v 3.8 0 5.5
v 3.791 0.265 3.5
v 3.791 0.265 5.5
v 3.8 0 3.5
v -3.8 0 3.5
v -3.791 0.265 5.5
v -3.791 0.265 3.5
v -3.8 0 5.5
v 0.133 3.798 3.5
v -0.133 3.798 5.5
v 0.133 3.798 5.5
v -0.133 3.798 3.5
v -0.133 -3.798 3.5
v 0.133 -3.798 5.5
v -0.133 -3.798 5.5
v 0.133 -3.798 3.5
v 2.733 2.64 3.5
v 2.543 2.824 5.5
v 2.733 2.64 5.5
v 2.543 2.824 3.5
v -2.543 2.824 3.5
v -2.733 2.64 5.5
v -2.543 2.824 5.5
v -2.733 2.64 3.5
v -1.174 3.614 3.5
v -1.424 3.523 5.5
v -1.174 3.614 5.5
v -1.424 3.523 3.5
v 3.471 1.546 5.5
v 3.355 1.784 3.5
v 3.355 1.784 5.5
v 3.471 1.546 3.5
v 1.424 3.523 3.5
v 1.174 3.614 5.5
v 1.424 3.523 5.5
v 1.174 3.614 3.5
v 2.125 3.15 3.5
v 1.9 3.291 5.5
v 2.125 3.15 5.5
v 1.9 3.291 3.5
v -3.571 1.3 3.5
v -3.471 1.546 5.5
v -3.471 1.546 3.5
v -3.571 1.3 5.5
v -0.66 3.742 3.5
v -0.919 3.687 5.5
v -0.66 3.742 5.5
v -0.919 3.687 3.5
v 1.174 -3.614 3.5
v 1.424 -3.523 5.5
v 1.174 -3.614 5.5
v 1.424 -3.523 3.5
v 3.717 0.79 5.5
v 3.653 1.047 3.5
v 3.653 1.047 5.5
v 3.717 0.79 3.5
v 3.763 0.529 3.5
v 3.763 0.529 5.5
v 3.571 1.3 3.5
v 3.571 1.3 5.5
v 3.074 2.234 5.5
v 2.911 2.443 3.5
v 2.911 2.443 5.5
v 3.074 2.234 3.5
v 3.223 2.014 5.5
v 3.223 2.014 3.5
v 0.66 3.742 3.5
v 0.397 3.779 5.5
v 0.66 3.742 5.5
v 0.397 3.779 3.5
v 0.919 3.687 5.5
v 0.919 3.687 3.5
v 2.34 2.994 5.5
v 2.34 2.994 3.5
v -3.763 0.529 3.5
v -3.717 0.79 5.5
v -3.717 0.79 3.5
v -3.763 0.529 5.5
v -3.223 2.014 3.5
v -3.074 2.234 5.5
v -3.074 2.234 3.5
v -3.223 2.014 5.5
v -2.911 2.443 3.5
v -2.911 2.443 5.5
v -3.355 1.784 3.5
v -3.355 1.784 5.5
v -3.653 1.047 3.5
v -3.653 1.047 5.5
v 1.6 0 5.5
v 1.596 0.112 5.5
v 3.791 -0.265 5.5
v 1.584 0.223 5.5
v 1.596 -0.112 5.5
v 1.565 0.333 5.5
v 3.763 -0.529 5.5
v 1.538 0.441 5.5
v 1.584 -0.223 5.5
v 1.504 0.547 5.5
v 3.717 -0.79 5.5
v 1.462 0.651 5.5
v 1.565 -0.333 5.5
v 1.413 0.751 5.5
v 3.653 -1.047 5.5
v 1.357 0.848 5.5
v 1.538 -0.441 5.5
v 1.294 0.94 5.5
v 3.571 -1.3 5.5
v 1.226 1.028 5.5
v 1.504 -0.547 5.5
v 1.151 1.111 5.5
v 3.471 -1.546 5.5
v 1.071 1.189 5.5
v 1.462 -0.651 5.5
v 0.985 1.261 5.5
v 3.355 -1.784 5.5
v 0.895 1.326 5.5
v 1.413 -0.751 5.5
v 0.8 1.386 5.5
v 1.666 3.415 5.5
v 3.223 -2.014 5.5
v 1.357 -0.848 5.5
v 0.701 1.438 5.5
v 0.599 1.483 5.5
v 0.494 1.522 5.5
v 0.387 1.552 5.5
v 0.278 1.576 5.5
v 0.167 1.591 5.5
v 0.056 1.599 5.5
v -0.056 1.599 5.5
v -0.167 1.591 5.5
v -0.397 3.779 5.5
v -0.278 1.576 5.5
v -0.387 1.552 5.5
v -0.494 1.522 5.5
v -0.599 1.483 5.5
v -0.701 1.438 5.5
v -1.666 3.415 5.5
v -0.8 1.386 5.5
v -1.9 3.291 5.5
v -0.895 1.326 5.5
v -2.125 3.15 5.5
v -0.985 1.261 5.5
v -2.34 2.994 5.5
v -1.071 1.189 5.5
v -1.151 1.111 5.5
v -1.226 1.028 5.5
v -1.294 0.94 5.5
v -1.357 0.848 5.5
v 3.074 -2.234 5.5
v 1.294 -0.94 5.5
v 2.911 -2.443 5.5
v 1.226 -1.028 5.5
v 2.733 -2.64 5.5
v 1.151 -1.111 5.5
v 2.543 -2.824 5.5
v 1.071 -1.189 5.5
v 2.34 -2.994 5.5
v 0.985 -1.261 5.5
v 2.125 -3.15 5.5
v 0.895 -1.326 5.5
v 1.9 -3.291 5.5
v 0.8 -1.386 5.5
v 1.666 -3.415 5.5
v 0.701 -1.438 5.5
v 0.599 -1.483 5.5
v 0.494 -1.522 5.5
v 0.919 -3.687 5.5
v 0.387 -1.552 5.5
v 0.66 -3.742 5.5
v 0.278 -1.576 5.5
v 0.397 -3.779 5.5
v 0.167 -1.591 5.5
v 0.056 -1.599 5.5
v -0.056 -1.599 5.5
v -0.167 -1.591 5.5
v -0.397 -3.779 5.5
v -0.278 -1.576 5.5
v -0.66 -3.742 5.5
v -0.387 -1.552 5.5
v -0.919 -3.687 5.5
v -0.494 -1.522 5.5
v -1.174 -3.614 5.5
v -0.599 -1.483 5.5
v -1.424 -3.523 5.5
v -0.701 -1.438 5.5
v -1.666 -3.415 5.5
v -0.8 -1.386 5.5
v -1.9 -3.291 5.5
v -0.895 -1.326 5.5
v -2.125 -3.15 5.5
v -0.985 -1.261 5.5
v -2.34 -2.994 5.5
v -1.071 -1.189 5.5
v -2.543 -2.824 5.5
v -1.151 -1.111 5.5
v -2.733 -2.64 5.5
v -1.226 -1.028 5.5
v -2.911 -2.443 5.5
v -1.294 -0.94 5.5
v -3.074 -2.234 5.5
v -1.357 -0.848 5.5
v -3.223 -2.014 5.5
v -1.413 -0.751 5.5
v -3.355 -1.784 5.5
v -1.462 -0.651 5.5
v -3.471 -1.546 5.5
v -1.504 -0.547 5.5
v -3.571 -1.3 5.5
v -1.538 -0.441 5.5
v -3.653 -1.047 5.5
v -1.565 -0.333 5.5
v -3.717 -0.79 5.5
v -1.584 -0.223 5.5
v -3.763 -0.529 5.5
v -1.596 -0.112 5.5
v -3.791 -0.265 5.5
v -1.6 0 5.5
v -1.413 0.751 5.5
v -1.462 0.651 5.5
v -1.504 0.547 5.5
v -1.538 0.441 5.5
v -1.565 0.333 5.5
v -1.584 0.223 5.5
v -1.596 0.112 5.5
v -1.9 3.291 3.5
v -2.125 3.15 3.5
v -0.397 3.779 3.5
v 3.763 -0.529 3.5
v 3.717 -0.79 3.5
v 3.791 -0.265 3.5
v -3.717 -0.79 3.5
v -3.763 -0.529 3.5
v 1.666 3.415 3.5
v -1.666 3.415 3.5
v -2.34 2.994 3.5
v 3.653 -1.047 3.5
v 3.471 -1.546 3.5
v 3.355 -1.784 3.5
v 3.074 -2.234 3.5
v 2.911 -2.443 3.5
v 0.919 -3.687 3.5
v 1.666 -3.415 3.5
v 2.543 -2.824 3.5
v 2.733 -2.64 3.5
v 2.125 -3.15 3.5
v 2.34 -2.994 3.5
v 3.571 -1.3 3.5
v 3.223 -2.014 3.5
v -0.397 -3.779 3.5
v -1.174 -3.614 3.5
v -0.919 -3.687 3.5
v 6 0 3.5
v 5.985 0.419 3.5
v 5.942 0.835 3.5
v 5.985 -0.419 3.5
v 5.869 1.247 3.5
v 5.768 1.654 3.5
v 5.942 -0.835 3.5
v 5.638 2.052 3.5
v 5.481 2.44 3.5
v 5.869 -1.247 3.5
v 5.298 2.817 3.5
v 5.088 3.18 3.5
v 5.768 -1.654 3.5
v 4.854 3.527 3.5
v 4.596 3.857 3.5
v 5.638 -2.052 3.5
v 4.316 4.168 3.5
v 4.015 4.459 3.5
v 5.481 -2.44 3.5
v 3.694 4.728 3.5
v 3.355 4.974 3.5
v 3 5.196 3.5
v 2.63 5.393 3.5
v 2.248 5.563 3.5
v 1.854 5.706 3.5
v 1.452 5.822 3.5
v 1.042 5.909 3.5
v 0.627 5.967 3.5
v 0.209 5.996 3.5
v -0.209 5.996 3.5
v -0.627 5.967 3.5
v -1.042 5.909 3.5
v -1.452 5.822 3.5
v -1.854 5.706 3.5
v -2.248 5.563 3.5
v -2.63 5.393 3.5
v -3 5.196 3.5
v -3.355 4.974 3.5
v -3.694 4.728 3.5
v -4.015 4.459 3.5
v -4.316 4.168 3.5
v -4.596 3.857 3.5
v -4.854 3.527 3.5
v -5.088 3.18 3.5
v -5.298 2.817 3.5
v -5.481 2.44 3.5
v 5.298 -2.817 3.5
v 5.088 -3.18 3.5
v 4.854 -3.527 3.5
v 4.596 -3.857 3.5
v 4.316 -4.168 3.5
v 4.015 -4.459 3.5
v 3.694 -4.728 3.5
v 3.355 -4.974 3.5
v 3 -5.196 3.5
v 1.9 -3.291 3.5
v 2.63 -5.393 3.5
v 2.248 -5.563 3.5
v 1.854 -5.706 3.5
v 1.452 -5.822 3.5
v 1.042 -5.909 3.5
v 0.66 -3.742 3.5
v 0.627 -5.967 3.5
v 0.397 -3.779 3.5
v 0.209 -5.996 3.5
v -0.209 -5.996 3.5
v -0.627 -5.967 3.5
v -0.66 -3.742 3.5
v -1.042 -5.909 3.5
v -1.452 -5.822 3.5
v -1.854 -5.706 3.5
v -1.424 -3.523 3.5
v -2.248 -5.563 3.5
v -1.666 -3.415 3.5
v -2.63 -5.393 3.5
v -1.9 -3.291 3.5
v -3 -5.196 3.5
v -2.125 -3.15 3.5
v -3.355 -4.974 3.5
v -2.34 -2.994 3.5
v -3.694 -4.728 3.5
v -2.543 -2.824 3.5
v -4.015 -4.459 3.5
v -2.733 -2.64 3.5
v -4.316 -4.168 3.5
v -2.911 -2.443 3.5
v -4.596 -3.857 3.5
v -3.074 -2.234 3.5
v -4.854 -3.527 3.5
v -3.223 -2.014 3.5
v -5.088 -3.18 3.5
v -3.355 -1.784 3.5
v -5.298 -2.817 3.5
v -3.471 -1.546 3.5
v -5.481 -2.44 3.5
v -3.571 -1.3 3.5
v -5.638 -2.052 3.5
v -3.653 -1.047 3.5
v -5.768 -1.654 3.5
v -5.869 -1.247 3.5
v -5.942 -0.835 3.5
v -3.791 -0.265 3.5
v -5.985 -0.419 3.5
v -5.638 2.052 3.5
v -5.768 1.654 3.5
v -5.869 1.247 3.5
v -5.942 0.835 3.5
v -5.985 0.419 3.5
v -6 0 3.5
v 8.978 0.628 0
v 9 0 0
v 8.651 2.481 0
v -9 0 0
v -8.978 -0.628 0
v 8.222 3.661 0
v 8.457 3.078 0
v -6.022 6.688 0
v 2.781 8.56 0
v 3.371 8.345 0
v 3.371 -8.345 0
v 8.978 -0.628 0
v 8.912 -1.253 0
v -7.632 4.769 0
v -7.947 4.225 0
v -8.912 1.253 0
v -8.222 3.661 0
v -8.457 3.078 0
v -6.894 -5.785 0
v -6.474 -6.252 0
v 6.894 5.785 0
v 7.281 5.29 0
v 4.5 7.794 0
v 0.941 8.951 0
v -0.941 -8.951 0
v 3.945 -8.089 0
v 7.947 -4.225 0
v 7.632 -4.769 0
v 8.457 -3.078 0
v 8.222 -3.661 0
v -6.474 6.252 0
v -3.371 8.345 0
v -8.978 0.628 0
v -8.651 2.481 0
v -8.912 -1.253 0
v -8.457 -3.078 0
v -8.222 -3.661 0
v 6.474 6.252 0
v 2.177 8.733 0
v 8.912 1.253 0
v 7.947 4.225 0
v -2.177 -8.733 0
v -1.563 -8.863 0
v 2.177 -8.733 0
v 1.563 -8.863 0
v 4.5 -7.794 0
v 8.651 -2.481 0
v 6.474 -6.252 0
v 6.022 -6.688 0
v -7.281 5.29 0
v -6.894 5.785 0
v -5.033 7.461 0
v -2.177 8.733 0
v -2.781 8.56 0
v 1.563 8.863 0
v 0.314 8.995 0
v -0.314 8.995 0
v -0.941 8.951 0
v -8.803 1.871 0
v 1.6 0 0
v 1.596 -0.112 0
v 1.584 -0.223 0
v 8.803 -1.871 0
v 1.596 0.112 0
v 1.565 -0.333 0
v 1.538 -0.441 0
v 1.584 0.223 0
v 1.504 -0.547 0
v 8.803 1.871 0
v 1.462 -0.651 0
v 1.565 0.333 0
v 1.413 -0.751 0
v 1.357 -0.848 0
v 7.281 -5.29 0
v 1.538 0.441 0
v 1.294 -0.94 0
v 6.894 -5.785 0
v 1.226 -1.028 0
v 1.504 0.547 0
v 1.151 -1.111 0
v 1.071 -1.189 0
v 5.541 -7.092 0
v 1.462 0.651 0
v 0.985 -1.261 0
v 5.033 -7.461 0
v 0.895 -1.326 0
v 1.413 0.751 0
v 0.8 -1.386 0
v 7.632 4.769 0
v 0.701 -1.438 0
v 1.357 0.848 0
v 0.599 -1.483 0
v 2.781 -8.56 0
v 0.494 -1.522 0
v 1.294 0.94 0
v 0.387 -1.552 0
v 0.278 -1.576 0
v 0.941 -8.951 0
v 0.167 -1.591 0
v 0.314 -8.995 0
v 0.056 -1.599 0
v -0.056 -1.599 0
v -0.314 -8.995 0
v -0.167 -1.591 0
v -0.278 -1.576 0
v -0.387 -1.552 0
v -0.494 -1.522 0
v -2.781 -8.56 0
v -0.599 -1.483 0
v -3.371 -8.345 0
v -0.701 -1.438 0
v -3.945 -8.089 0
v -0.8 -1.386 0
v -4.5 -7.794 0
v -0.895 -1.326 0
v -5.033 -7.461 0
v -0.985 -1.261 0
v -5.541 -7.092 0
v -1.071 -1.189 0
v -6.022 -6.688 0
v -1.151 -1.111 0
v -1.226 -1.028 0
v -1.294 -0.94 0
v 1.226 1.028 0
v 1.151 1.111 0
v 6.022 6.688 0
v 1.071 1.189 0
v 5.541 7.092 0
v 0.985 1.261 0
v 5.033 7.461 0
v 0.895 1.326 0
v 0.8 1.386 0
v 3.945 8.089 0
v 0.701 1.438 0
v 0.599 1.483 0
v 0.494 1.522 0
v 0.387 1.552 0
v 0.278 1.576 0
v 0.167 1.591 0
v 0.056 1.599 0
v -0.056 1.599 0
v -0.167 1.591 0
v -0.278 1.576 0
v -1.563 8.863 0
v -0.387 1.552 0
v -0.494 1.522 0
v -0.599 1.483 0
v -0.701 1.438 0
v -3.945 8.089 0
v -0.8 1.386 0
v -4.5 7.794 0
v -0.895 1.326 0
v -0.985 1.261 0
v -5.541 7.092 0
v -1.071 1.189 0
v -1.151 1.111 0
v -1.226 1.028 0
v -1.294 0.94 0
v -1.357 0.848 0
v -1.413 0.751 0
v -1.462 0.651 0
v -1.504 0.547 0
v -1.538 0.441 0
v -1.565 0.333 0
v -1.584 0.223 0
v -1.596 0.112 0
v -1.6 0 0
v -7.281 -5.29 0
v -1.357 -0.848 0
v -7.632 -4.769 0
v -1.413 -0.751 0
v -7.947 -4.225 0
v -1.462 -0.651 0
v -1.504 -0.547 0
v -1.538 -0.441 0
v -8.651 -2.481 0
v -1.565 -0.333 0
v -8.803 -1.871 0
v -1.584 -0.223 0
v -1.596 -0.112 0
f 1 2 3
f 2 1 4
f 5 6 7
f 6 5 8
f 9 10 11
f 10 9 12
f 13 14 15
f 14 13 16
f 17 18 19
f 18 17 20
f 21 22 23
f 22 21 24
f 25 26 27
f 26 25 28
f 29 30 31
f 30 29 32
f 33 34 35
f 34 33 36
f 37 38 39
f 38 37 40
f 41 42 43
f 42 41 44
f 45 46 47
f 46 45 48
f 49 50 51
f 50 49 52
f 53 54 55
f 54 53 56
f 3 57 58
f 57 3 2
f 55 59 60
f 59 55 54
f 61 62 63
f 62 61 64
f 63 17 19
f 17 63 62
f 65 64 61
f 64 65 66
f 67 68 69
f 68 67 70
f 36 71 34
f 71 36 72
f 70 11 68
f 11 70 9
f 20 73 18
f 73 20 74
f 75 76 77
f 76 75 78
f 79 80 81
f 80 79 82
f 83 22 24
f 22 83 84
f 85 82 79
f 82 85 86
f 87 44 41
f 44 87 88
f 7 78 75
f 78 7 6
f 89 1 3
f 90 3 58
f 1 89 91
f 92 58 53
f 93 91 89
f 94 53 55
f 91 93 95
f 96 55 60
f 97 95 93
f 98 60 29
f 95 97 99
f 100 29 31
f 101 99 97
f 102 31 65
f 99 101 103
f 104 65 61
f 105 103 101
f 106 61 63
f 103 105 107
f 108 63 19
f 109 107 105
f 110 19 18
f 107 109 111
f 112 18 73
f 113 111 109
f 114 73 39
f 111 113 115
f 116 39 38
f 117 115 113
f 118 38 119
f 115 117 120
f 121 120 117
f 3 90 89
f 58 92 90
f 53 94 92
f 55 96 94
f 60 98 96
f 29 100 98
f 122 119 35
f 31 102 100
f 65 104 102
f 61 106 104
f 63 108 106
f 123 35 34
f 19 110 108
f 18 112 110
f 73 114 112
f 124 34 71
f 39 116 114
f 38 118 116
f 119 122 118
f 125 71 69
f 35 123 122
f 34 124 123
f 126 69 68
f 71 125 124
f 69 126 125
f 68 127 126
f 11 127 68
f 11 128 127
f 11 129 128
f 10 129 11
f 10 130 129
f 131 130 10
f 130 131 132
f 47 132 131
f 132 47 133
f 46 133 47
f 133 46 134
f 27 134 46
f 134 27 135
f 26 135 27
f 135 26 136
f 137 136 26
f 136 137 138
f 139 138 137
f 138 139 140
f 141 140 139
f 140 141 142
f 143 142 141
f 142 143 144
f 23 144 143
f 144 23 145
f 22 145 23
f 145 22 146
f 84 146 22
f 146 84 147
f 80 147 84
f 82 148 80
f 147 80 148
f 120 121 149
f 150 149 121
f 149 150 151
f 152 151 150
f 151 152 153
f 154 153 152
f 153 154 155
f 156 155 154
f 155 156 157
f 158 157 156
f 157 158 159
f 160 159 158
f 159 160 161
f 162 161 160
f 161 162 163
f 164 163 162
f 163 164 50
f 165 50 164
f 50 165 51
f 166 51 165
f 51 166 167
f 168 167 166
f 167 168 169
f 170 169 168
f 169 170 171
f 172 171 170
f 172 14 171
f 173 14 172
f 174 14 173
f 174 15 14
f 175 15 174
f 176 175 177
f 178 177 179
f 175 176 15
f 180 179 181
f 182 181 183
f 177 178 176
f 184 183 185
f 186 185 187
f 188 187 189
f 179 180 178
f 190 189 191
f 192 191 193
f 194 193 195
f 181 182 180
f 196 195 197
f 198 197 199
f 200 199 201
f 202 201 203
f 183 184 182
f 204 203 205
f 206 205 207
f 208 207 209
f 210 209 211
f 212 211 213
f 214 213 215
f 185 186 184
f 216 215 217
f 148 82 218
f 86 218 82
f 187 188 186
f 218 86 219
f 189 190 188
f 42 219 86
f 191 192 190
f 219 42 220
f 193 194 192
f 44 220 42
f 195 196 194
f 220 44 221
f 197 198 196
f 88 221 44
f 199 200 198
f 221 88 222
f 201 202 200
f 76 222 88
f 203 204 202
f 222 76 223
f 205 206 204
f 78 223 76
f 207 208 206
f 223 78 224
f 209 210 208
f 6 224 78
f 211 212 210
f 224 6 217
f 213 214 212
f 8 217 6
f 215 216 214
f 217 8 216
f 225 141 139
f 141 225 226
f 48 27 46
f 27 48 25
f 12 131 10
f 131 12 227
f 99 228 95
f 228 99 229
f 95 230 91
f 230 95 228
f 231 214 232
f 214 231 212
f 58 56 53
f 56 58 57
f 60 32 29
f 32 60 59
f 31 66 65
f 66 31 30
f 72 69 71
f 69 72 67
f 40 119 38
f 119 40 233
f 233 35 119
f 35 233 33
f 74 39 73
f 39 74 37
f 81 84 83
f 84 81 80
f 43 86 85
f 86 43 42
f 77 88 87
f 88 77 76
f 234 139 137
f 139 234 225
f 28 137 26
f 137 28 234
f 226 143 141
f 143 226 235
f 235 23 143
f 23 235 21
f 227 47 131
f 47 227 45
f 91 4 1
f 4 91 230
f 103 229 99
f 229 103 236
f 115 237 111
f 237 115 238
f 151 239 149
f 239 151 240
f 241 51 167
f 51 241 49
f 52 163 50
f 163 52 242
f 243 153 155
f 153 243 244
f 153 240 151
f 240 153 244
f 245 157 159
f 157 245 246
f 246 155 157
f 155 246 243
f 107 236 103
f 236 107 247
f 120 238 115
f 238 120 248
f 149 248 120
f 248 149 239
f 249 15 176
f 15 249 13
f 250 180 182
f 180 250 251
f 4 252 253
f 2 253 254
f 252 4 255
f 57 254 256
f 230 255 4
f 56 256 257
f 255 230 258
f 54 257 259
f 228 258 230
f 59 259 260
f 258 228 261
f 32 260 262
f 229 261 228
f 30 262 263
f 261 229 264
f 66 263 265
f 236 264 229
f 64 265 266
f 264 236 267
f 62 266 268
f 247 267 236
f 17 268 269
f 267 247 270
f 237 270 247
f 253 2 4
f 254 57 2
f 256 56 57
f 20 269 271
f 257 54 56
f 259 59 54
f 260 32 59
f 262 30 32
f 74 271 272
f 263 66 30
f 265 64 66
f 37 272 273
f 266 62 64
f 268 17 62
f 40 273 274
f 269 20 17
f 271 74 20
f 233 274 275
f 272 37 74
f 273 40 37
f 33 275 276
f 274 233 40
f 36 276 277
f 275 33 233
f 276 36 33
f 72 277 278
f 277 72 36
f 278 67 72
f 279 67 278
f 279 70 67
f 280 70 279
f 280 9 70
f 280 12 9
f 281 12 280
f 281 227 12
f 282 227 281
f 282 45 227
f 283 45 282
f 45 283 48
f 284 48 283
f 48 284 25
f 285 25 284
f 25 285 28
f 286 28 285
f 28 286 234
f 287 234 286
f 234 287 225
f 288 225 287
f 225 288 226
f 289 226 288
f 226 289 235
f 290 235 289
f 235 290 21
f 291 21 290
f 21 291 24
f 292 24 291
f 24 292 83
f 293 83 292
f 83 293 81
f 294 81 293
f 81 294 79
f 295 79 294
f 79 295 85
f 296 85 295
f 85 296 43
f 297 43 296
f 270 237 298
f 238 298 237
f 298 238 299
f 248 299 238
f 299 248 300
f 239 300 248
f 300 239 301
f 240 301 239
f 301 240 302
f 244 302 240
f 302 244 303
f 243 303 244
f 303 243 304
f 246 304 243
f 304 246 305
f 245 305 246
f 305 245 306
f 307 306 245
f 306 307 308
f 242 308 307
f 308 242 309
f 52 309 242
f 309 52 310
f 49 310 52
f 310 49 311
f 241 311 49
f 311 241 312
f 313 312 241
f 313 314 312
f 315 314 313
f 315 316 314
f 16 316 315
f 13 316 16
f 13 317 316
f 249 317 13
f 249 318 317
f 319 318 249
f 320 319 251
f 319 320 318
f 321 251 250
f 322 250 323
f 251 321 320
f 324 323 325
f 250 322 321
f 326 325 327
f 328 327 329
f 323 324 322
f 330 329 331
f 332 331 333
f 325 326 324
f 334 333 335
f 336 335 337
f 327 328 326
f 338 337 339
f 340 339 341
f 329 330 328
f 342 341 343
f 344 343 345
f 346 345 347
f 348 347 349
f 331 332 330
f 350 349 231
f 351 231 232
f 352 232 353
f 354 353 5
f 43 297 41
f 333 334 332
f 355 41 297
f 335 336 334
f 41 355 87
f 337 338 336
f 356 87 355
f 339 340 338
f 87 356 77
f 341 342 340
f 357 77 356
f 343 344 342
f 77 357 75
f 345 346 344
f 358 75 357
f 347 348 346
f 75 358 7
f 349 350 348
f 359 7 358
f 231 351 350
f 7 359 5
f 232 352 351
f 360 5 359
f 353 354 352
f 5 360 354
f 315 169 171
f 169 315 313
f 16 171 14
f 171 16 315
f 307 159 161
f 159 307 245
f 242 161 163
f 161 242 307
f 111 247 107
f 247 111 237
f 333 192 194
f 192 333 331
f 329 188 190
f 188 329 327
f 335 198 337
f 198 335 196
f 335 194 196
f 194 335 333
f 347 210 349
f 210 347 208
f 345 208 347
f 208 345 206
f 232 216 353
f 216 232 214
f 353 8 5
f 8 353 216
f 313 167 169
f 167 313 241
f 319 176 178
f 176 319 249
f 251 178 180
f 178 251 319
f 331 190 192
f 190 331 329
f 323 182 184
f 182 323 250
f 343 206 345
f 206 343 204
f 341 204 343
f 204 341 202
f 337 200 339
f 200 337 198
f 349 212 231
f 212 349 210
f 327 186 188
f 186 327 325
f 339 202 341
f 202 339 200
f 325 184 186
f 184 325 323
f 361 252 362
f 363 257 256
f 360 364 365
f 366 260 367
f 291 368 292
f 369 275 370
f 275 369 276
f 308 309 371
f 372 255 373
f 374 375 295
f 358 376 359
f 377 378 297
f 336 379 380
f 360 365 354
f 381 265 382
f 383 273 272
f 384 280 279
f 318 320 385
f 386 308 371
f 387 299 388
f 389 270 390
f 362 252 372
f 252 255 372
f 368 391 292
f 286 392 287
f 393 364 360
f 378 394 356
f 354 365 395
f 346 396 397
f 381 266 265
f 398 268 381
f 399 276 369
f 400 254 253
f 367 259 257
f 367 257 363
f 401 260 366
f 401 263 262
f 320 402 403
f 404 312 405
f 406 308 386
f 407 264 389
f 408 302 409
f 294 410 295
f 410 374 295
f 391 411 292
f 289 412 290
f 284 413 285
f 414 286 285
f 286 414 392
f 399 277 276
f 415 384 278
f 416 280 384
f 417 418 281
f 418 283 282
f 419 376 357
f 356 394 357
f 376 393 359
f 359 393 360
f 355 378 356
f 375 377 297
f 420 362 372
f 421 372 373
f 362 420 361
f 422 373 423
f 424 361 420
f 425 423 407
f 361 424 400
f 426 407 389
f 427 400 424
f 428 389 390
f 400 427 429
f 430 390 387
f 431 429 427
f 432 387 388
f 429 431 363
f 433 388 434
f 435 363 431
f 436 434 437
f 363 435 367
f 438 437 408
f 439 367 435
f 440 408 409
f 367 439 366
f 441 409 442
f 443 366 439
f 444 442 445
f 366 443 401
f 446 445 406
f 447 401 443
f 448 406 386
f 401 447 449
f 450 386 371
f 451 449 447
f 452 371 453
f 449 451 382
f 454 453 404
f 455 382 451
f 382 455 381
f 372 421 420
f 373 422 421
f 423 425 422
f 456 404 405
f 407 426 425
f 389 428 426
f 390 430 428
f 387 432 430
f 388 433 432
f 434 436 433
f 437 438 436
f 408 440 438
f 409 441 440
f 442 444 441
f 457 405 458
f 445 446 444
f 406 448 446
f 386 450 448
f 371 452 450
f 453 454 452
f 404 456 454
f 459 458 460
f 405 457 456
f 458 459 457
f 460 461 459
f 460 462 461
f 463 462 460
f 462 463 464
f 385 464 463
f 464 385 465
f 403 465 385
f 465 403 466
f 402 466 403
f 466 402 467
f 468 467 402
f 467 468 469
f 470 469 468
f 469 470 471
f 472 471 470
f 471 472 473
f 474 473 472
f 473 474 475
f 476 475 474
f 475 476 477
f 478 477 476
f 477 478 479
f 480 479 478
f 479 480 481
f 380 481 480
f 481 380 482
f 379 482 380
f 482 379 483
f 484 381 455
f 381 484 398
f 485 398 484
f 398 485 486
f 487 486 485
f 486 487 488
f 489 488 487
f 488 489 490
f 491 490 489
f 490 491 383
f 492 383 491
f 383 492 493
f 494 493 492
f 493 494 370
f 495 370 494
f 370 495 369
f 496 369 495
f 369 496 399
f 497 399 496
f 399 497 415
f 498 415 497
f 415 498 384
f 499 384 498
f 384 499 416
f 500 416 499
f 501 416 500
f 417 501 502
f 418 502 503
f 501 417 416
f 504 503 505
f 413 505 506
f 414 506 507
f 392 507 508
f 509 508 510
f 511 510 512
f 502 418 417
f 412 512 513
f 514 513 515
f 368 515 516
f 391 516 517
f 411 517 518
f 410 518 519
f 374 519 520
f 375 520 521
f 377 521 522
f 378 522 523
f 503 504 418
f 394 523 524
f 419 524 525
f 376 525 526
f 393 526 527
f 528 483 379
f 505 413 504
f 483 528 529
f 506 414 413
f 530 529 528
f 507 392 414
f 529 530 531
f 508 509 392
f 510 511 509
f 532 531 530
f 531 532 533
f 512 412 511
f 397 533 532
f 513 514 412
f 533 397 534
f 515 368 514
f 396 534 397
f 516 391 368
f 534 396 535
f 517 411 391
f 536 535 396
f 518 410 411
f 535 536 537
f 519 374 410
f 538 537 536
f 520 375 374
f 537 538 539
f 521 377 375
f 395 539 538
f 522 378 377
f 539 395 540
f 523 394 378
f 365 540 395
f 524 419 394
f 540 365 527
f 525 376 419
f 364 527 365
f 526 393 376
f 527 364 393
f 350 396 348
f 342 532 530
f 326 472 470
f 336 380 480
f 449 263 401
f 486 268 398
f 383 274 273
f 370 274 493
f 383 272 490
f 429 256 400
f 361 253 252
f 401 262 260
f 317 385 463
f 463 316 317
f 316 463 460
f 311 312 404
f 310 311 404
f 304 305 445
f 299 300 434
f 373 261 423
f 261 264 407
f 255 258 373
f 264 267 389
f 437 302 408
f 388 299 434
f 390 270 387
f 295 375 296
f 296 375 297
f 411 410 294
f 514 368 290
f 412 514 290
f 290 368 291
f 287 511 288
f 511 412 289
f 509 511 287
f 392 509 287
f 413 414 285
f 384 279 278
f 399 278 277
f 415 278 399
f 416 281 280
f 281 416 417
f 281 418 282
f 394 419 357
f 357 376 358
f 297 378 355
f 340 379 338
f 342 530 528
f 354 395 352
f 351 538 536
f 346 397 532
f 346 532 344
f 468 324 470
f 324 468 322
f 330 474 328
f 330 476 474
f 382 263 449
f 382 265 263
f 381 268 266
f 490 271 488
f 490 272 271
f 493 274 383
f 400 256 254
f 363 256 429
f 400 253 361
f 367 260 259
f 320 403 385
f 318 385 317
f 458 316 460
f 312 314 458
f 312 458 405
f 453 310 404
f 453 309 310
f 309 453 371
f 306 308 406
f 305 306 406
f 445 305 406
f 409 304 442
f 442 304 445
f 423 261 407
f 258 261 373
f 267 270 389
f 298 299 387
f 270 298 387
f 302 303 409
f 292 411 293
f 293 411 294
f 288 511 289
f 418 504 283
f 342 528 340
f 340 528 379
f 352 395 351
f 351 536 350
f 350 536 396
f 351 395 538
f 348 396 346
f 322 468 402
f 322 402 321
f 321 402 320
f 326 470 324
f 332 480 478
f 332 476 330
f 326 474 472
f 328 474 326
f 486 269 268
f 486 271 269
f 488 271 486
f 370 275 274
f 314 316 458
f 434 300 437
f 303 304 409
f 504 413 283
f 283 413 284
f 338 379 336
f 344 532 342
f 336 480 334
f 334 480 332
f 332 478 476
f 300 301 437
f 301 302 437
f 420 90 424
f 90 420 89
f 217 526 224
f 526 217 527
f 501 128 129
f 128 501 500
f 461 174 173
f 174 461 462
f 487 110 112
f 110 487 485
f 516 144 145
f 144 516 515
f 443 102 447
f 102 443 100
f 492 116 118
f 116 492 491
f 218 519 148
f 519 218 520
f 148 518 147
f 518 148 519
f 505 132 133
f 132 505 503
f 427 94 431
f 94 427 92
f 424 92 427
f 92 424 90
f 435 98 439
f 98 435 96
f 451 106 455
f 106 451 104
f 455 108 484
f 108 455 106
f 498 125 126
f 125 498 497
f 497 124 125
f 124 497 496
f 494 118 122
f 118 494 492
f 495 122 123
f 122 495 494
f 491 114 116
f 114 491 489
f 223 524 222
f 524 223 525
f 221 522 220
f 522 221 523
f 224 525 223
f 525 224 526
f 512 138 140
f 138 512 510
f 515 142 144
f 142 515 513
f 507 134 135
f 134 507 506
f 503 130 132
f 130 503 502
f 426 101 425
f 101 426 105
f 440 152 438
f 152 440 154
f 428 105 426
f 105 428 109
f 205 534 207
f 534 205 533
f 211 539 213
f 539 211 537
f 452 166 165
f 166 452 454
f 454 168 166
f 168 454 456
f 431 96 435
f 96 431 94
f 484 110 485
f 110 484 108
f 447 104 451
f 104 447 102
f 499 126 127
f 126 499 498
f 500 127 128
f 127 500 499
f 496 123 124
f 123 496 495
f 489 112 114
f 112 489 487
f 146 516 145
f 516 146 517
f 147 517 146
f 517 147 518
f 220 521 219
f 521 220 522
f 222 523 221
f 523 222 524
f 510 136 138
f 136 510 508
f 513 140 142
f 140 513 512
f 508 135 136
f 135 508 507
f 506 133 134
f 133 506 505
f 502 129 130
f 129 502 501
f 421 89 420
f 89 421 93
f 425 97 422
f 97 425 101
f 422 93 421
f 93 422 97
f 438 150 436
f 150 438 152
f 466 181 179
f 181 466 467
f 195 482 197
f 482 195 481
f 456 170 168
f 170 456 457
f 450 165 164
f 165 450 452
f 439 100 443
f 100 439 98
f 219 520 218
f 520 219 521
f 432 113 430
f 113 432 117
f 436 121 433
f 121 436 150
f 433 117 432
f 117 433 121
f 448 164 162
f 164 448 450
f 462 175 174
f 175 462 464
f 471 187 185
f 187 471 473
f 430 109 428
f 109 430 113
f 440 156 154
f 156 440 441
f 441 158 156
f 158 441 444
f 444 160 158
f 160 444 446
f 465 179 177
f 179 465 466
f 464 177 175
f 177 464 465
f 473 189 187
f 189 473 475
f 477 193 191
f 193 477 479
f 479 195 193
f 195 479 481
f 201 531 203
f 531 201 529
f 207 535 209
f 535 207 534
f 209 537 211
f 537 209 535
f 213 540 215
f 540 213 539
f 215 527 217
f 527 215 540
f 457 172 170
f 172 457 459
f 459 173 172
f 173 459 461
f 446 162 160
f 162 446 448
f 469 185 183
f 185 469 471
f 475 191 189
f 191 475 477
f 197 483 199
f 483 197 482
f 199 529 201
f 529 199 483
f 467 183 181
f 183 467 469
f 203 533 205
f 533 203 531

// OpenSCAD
inner=7.6;
inner_h=2;
outer=12;
outer2=18;
outer_h=(14-7)/2;
screw=3.2;
total_h=inner_h+outer_h;
pad=0.1;
padd=pad*2;
$fn=90;

difference() {
    union() {
        translate([0,0,outer_h])
        cylinder(d=inner,h=inner_h);
        cylinder(d2=outer, d1=outer2, h=outer_h);
    }
    translate([0,0,-pad])
    cylinder(d=screw,h=total_h+padd);
}
